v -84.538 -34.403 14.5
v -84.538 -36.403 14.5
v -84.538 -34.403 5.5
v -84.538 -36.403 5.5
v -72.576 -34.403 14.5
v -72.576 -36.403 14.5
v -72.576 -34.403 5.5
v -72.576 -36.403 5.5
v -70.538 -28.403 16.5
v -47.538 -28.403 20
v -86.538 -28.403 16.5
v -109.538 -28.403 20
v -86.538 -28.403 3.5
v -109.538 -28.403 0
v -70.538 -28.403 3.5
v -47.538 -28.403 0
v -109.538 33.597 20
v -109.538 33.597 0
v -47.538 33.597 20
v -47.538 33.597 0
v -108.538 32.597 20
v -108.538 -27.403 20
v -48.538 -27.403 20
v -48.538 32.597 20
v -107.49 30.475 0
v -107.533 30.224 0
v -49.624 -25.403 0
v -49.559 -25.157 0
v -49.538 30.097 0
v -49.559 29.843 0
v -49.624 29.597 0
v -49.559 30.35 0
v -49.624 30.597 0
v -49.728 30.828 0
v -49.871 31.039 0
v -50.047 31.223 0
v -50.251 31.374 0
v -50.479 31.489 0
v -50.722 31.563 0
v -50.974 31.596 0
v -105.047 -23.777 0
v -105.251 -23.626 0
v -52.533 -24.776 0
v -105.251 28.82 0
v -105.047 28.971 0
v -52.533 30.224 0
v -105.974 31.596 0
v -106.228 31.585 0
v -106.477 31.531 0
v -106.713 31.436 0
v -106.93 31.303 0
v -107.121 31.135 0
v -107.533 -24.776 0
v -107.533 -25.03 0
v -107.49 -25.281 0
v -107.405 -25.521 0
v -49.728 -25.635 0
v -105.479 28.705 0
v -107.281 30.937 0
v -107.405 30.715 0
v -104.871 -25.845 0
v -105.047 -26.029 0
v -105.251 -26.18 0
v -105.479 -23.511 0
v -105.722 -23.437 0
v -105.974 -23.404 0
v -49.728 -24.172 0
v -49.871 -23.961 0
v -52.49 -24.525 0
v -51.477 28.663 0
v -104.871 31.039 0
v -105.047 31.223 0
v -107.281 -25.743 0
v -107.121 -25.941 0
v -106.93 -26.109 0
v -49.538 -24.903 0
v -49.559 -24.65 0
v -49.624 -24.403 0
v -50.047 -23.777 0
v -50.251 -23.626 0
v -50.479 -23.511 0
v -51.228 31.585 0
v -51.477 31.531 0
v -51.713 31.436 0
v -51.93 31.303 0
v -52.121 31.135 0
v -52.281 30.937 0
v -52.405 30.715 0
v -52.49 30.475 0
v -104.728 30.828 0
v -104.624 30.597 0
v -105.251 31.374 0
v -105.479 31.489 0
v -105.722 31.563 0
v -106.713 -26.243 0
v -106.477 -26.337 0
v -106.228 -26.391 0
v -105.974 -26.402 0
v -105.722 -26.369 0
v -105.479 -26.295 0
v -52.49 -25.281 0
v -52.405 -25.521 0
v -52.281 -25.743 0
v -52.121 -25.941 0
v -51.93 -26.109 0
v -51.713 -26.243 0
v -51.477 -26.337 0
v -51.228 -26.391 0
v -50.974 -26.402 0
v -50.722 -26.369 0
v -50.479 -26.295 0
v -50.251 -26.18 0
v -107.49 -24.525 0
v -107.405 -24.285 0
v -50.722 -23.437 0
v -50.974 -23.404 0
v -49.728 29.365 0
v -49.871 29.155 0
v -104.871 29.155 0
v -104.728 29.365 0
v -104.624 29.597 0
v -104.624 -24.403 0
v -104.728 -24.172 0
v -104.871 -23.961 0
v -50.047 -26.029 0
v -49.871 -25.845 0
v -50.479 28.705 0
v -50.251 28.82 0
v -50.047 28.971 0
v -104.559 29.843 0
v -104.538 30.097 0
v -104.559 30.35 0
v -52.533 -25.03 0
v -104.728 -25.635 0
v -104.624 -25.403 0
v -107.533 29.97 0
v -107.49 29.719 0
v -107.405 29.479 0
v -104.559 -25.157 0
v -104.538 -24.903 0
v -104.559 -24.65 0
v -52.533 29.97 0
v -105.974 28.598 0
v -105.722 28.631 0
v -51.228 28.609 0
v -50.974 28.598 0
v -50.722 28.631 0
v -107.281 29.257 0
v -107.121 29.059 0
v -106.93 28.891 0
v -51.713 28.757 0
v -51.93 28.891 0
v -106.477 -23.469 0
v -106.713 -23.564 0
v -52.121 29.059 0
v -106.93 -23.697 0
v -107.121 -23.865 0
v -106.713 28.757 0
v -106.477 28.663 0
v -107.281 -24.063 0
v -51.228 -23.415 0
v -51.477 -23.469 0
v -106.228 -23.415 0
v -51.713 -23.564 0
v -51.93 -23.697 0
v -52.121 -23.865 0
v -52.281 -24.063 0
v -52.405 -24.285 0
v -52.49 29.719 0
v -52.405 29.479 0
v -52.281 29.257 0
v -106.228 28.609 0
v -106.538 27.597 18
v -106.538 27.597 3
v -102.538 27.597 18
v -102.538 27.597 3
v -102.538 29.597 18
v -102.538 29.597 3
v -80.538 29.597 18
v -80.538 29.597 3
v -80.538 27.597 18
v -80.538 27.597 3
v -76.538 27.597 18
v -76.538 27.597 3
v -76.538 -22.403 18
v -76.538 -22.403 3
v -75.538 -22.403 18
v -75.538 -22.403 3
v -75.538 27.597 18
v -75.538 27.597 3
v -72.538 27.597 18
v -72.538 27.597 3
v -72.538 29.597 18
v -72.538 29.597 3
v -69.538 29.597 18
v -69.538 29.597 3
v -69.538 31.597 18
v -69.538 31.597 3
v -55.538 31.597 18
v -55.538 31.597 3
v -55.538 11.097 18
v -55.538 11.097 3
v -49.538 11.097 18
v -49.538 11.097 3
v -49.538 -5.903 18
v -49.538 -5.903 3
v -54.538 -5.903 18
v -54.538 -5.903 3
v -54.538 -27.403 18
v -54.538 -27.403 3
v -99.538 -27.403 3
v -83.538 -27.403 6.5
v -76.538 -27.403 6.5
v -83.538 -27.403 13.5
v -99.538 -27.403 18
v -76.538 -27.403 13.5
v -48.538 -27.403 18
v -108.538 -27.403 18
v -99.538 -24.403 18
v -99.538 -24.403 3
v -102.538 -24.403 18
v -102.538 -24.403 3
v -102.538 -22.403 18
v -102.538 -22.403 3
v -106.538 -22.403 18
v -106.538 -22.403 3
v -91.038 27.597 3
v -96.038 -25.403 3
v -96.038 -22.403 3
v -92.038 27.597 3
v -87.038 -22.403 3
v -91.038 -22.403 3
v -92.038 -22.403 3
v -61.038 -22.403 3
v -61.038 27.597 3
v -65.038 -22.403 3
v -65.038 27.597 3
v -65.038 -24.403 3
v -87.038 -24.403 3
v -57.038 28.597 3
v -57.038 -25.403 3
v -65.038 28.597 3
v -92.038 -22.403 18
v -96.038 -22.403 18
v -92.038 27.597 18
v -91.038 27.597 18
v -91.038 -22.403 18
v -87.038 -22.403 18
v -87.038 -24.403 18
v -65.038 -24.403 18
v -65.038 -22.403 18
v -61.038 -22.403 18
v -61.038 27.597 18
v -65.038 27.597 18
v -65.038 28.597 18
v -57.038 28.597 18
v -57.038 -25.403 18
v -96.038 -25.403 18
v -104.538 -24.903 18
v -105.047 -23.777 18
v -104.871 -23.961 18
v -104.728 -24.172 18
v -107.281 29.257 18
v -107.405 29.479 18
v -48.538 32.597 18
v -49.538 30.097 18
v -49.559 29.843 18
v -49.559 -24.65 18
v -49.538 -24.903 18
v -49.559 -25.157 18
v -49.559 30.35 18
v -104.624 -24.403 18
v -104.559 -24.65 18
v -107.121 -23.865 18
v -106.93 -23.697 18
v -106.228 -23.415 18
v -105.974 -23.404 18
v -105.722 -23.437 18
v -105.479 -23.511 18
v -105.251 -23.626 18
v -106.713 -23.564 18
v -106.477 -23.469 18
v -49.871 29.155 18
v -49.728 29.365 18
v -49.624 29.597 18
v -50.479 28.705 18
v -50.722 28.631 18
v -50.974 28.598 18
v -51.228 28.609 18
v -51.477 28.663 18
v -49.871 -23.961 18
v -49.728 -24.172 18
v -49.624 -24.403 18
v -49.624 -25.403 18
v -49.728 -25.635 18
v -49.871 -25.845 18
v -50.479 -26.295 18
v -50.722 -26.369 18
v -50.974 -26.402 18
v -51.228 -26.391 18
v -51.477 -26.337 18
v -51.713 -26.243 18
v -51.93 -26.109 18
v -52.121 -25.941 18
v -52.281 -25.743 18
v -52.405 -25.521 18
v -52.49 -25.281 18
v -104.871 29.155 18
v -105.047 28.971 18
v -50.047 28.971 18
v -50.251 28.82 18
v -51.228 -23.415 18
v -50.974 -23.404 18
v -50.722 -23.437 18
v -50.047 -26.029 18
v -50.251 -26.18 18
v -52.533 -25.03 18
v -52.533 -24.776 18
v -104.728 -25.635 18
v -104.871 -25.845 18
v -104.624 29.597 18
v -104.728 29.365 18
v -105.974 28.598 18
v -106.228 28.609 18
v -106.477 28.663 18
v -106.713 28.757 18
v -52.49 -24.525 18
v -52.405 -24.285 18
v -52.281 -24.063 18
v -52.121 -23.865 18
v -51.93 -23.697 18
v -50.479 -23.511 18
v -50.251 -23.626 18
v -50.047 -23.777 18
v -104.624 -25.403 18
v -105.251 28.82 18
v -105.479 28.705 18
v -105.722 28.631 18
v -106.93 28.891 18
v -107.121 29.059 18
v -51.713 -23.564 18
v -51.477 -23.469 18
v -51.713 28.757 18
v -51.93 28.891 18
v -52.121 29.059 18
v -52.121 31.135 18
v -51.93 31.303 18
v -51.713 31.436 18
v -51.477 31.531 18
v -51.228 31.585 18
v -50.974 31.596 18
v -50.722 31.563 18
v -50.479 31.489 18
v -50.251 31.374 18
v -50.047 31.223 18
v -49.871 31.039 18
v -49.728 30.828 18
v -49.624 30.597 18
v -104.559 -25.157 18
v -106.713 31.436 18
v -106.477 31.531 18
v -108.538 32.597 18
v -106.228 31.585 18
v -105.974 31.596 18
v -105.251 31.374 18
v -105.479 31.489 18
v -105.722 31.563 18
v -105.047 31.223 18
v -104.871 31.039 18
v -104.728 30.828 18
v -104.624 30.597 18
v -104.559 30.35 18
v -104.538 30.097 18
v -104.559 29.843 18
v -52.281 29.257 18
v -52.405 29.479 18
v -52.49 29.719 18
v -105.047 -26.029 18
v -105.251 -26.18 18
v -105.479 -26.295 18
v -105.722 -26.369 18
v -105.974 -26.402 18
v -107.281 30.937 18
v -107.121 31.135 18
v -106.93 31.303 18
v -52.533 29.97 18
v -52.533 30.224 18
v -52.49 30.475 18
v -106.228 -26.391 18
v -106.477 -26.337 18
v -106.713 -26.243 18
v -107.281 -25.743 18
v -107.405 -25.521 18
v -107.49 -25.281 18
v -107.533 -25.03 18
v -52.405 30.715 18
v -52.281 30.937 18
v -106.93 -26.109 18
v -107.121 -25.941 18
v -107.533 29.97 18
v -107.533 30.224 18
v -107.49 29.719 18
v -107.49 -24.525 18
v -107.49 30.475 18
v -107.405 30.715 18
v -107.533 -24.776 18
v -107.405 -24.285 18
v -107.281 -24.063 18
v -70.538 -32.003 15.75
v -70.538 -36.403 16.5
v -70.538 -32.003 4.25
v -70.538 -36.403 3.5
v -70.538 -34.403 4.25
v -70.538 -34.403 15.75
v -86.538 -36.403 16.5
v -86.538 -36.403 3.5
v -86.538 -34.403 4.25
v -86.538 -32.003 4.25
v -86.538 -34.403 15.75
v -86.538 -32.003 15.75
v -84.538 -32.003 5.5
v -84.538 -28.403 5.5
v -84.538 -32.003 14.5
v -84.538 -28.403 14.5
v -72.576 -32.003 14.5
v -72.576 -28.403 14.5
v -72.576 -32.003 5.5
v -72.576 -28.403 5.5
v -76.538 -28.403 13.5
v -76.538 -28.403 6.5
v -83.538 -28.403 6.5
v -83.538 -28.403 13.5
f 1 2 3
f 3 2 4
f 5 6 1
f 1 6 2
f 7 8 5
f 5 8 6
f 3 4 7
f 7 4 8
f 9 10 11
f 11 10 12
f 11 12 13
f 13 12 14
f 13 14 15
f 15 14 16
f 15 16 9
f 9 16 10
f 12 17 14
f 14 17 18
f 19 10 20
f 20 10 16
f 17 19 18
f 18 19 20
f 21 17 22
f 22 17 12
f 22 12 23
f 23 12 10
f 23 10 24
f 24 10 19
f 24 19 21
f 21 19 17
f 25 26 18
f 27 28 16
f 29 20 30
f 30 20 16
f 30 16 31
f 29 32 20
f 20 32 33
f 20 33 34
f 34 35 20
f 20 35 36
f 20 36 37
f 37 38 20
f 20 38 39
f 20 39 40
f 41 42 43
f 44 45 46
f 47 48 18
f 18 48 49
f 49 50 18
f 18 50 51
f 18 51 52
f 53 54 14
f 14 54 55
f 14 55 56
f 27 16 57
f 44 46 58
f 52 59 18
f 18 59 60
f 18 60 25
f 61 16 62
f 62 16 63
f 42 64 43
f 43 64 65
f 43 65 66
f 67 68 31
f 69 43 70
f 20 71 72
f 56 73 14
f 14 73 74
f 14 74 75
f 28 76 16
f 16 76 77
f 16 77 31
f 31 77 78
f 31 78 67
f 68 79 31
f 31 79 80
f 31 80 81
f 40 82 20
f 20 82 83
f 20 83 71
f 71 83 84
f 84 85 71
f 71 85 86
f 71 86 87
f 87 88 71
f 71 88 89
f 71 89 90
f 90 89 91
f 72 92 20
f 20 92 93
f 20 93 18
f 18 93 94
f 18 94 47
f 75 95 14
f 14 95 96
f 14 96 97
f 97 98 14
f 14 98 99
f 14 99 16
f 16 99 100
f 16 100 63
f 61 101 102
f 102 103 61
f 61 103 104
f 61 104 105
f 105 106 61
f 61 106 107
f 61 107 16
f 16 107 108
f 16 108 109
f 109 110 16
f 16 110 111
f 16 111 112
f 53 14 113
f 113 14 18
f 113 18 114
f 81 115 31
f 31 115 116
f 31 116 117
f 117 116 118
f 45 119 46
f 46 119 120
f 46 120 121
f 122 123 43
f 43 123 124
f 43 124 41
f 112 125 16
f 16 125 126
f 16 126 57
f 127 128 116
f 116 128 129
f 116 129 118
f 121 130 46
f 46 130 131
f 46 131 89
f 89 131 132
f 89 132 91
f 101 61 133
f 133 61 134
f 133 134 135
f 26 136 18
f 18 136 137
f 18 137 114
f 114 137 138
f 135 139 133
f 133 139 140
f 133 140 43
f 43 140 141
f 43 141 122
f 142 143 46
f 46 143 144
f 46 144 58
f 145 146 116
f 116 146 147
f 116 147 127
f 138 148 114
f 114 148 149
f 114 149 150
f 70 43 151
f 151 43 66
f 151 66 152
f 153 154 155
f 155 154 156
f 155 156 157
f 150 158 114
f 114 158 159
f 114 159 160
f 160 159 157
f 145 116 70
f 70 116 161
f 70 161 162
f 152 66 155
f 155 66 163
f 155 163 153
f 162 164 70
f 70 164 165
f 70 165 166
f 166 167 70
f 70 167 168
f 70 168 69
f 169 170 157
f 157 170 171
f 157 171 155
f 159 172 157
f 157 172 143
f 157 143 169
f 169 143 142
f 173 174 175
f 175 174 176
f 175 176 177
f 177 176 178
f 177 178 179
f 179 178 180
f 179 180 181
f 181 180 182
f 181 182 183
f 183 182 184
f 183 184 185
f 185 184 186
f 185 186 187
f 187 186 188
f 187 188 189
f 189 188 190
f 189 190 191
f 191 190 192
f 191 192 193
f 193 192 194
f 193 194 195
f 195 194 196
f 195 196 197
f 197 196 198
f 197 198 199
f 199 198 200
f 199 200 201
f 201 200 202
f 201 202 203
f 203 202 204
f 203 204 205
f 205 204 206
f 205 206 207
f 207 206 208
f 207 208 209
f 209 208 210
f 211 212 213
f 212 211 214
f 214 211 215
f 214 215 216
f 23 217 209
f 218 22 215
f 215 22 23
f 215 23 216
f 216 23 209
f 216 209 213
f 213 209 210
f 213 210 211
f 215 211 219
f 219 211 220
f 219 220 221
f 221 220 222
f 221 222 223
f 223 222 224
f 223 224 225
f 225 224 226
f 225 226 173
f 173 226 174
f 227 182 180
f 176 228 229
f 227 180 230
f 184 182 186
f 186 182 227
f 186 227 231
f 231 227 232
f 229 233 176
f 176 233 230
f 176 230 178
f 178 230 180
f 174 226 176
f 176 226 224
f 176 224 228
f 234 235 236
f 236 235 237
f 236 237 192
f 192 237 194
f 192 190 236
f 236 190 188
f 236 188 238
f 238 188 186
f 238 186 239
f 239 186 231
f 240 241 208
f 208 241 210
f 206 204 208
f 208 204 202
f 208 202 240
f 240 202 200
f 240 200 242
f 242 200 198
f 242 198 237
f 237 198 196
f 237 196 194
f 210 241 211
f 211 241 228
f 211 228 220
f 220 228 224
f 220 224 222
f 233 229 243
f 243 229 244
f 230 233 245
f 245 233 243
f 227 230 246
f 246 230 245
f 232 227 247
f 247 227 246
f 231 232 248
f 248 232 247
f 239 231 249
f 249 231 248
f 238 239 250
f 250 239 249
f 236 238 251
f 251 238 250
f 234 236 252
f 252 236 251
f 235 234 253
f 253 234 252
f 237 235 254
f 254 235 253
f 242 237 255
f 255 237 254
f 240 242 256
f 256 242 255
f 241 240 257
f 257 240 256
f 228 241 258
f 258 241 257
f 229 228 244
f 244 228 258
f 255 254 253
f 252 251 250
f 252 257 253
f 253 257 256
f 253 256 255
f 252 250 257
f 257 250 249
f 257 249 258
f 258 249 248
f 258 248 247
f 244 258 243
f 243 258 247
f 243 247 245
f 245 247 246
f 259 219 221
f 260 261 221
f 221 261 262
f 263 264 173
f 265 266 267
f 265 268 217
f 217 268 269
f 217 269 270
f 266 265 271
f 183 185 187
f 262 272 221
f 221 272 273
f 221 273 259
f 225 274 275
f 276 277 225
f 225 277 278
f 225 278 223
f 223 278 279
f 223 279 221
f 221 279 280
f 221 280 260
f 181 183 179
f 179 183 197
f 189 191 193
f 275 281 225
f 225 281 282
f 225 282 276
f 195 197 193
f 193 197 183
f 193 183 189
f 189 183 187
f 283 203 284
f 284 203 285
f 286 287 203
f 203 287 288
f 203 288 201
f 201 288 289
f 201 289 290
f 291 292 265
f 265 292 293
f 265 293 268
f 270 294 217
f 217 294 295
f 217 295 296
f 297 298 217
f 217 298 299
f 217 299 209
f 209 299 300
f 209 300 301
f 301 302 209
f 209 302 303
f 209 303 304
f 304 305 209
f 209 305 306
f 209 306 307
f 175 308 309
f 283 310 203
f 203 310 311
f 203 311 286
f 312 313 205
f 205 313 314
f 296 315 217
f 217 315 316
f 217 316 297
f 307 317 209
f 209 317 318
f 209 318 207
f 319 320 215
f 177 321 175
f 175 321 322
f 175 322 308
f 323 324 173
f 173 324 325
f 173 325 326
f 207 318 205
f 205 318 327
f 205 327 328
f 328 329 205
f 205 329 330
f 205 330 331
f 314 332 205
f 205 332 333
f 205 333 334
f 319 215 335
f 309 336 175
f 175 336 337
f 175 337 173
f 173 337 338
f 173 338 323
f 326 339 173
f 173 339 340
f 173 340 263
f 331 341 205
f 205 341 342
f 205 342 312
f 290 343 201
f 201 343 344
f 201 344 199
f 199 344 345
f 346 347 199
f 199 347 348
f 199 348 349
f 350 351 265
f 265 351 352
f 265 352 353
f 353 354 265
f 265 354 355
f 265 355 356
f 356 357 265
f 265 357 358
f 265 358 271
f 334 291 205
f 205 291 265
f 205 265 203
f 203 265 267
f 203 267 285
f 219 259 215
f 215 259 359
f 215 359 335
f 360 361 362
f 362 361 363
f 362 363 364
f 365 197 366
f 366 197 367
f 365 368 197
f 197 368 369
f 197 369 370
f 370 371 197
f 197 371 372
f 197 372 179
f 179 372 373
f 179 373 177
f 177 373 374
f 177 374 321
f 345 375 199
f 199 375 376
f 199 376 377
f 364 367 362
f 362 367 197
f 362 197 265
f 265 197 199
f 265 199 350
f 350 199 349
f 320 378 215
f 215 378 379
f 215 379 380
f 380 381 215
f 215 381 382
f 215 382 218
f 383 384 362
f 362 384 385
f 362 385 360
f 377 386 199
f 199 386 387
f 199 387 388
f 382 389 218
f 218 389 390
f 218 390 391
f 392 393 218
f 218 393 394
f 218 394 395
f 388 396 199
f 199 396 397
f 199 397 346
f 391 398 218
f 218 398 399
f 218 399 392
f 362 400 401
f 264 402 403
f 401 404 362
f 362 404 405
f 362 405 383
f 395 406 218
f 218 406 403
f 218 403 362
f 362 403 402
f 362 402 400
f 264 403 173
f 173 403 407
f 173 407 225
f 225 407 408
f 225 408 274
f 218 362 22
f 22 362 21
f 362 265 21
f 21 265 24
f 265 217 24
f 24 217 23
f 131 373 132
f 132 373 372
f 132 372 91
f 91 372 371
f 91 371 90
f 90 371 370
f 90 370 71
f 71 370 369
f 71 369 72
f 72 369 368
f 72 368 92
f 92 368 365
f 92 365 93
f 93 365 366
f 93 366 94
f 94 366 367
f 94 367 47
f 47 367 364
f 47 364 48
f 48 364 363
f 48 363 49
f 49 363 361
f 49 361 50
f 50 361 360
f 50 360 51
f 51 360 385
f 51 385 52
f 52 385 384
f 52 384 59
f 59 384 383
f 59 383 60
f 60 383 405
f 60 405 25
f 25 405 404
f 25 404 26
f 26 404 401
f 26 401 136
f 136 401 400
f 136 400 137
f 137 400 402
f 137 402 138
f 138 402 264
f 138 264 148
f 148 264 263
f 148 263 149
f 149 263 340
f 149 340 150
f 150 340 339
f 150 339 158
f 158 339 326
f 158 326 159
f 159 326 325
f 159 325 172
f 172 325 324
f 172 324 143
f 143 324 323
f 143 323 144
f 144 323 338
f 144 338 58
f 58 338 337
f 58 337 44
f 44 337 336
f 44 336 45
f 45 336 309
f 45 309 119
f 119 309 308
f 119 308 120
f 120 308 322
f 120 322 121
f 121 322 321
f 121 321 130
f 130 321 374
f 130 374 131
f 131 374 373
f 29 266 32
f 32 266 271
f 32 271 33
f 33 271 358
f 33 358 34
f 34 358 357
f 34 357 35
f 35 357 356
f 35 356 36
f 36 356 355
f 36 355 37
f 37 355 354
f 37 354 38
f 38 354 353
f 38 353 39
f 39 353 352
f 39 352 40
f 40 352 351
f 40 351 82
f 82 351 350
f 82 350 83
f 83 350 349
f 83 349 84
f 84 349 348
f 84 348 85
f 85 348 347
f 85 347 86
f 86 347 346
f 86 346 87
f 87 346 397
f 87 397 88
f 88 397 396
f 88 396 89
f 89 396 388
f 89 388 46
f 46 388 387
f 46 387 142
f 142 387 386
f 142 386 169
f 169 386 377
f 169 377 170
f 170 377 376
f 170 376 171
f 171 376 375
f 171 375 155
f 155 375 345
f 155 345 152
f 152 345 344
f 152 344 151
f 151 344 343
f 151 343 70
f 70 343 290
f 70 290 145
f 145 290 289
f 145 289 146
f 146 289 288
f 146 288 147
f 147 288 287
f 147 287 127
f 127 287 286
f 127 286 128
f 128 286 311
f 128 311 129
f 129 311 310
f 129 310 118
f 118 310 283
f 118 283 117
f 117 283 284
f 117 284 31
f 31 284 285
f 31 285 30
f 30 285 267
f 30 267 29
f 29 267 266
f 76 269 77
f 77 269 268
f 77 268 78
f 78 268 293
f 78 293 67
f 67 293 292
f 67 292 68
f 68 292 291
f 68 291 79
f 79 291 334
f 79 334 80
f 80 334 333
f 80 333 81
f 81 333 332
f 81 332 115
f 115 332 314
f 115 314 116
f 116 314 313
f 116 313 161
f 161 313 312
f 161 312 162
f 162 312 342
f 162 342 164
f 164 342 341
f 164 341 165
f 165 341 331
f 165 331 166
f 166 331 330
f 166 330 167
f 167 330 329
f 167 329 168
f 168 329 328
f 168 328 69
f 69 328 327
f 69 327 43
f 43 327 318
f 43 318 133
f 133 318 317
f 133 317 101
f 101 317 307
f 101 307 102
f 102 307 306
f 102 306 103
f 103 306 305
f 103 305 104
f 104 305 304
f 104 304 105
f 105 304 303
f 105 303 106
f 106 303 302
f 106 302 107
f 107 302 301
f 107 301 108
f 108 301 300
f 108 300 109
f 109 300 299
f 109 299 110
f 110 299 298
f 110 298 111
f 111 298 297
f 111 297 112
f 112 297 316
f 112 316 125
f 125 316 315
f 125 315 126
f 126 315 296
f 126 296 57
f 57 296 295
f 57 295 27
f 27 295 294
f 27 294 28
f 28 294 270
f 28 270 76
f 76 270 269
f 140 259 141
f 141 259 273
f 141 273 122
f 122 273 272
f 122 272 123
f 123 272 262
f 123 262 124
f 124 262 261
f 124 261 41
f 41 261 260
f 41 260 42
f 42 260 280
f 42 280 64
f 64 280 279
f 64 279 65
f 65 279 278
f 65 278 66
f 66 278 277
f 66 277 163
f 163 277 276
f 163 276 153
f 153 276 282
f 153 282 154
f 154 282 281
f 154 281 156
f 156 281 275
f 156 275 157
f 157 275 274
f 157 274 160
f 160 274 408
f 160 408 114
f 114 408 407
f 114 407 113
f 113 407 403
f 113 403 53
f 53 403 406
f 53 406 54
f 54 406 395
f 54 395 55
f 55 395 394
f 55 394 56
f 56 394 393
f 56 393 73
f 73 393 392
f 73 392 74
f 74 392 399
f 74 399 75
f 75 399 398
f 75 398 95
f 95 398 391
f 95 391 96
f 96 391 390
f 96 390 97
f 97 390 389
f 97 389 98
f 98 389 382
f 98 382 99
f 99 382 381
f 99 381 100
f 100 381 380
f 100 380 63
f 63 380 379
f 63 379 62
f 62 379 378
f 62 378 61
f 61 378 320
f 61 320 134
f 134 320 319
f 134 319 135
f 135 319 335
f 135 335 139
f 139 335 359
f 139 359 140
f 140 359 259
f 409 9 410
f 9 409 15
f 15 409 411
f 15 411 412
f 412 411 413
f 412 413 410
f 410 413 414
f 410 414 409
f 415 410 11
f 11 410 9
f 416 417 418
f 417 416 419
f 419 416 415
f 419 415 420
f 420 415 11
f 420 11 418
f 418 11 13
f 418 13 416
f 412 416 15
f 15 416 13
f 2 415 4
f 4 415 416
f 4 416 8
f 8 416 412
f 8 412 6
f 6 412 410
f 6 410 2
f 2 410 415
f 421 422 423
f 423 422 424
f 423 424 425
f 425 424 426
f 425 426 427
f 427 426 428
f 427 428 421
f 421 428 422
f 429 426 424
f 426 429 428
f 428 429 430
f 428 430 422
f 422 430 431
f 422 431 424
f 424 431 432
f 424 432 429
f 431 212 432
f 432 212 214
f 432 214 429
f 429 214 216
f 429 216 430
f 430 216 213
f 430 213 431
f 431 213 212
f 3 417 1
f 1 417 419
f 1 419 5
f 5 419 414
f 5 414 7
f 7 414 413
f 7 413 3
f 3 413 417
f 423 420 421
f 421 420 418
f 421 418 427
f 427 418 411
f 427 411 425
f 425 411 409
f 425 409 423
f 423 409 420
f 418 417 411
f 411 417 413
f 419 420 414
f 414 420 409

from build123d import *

# Parameters (mm, degrees)
CROQUIS1_W              = 62
CROQUIS1_H              = 62
SALIENTE_EXTRUIR1_DEPTH = 20
CORTAR_EXTRUIR1_DEPTH   = 17
CORTAR_EXTRUIR2_DEPTH   = 2
CORTAR_EXTRUIR3_START   = -18
CROQUIS4_R              = 1.5
CORTAR_EXTRUIR3_DEPTH   = 18
CROQUIS5_W              = 16
CROQUIS5_H              = 13
SALIENTE_EXTRUIR2_DEPTH = 8
CROQUIS6_W              = 11.961680629
CROQUIS6_H              = 9
CORTAR_EXTRUIR4_DEPTH   = 8
CROQUIS7_W              = 7
CROQUIS7_H              = 7
CORTAR_EXTRUIR5_DEPTH   = 1
CORTAR_EXTRUIR6_START   = -16
CROQUIS8_W              = 11.5
CROQUIS8_H              = 2.4
CORTAR_EXTRUIR6_DEPTH   = 16


with BuildPart() as part:
    # Croquis1 → Saliente-Extruir1 (new body)
    with BuildSketch(Plane.XY):
        with Locations((-78.537903487, 2.596858639)):
            Rectangle(CROQUIS1_W, CROQUIS1_H)
    extrude(amount=SALIENTE_EXTRUIR1_DEPTH)

    # Croquis2 → Cortar-Extruir1 (cut)
    with BuildSketch(Plane.XY.offset(20)):
        Polygon((-106.537903487, 27.596858639), (-106.537903487, -22.403141361), (-102.537903487, -22.403141361), (-102.537903487, -24.403141361), (-99.537903487, -24.403141361), (-99.537903487, -25.903141361), (-99.537903487, -27.403141361), (-54.537903487, -27.403141361), (-54.537903487, -25.903141361), (-54.537903487, -5.903141361), (-49.537903487, -5.903141361), (-49.537903487, 11.096858639), (-55.537903487, 11.096858639), (-55.537903487, 30.596858639), (-55.537903487, 31.596858639), (-69.537903487, 31.596858639), (-69.537903487, 29.596858639), (-72.537903487, 29.596858639), (-72.537903487, 27.596858639), (-75.537903487, 27.596858639), (-75.537903487, -22.403141361), (-76.537903487, -22.403141361), (-76.537903487, 27.596858639), (-80.537903487, 27.596858639), (-80.537903487, 29.596858639), (-102.537903487, 29.596858639), (-102.537903487, 27.596858639), align=None)
        Polygon((-92.037903487, 27.596858639), (-91.037903487, 27.596858639), (-91.037903487, -22.403141361), (-87.037903487, -22.403141361), (-87.037903487, -24.403141361), (-65.037903487, -24.403141361), (-65.037903487, -22.403141361), (-61.037903487, -22.403141361), (-61.037903487, 27.596858639), (-65.037903487, 27.596858639), (-65.037903487, 28.596858639), (-57.037903487, 28.596858639), (-57.037903487, -24.403141361), (-57.037903487, -25.403141361), (-96.037903487, -25.403141361), (-96.037903487, -24.403141361), (-96.037903487, -22.403141361), (-92.037903487, -22.403141361), align=None, mode=Mode.SUBTRACT)
    extrude(amount=-CORTAR_EXTRUIR1_DEPTH, mode=Mode.SUBTRACT)

    # Croquis3 → Cortar-Extruir2 (cut)
    with BuildSketch(Plane.XY.offset(20)):
        Polygon((-108.537903487, 27.596858639), (-108.537903487, 32.596858639), (-48.537903487, 32.596858639), (-48.537903487, -27.403141361), (-108.537903487, -27.403141361), align=None)
    extrude(amount=-CORTAR_EXTRUIR2_DEPTH, mode=Mode.SUBTRACT)

    # Croquis4 → Cortar-Extruir3 (cut)
    with BuildSketch(Plane.XY.offset(18).offset(CORTAR_EXTRUIR3_START)):
        with Locations((-106.037903487, 30.096858639)):
            Circle(CROQUIS4_R)
        with Locations((-51.037903487, 30.096858639)):
            Circle(CROQUIS4_R)
        with Locations((-51.037903487, -24.903141361)):
            Circle(CROQUIS4_R)
        with Locations((-106.037903487, -24.903141361)):
            Circle(CROQUIS4_R)
    extrude(amount=CORTAR_EXTRUIR3_DEPTH, mode=Mode.SUBTRACT)

    # Croquis5 → Saliente-Extruir2 (add)
    with BuildSketch(Plane.XZ.offset(28.403141361)):
        with Locations((-78.537903487, 10)):
            Rectangle(CROQUIS5_W, CROQUIS5_H)
    extrude(amount=SALIENTE_EXTRUIR2_DEPTH)

    # Croquis6 → Cortar-Extruir4 (cut)
    with BuildSketch(Plane.XZ.offset(36.403141361)):
        with Locations((-78.557063173, 10)):
            Rectangle(CROQUIS6_W, CROQUIS6_H)
    extrude(amount=-CORTAR_EXTRUIR4_DEPTH, mode=Mode.SUBTRACT)

    # Croquis7 → Cortar-Extruir5 (cut)
    with BuildSketch(Plane.XZ.offset(28.403141361)):
        with Locations((-80.037903487, 10)):
            Rectangle(CROQUIS7_W, CROQUIS7_H)
    extrude(amount=-CORTAR_EXTRUIR5_DEPTH, mode=Mode.SUBTRACT)

    # Croquis8 → Cortar-Extruir6 (cut)
    with BuildSketch(Plane(origin=(-70.537903487, 0, 0), x_dir=(0, 0, -1), z_dir=(1, 0, 0)).offset(CORTAR_EXTRUIR6_START)):
        with Locations((-10, -33.203141361)):
            Rectangle(CROQUIS8_W, CROQUIS8_H)
    extrude(amount=CORTAR_EXTRUIR6_DEPTH, mode=Mode.SUBTRACT)


solid = part.part
